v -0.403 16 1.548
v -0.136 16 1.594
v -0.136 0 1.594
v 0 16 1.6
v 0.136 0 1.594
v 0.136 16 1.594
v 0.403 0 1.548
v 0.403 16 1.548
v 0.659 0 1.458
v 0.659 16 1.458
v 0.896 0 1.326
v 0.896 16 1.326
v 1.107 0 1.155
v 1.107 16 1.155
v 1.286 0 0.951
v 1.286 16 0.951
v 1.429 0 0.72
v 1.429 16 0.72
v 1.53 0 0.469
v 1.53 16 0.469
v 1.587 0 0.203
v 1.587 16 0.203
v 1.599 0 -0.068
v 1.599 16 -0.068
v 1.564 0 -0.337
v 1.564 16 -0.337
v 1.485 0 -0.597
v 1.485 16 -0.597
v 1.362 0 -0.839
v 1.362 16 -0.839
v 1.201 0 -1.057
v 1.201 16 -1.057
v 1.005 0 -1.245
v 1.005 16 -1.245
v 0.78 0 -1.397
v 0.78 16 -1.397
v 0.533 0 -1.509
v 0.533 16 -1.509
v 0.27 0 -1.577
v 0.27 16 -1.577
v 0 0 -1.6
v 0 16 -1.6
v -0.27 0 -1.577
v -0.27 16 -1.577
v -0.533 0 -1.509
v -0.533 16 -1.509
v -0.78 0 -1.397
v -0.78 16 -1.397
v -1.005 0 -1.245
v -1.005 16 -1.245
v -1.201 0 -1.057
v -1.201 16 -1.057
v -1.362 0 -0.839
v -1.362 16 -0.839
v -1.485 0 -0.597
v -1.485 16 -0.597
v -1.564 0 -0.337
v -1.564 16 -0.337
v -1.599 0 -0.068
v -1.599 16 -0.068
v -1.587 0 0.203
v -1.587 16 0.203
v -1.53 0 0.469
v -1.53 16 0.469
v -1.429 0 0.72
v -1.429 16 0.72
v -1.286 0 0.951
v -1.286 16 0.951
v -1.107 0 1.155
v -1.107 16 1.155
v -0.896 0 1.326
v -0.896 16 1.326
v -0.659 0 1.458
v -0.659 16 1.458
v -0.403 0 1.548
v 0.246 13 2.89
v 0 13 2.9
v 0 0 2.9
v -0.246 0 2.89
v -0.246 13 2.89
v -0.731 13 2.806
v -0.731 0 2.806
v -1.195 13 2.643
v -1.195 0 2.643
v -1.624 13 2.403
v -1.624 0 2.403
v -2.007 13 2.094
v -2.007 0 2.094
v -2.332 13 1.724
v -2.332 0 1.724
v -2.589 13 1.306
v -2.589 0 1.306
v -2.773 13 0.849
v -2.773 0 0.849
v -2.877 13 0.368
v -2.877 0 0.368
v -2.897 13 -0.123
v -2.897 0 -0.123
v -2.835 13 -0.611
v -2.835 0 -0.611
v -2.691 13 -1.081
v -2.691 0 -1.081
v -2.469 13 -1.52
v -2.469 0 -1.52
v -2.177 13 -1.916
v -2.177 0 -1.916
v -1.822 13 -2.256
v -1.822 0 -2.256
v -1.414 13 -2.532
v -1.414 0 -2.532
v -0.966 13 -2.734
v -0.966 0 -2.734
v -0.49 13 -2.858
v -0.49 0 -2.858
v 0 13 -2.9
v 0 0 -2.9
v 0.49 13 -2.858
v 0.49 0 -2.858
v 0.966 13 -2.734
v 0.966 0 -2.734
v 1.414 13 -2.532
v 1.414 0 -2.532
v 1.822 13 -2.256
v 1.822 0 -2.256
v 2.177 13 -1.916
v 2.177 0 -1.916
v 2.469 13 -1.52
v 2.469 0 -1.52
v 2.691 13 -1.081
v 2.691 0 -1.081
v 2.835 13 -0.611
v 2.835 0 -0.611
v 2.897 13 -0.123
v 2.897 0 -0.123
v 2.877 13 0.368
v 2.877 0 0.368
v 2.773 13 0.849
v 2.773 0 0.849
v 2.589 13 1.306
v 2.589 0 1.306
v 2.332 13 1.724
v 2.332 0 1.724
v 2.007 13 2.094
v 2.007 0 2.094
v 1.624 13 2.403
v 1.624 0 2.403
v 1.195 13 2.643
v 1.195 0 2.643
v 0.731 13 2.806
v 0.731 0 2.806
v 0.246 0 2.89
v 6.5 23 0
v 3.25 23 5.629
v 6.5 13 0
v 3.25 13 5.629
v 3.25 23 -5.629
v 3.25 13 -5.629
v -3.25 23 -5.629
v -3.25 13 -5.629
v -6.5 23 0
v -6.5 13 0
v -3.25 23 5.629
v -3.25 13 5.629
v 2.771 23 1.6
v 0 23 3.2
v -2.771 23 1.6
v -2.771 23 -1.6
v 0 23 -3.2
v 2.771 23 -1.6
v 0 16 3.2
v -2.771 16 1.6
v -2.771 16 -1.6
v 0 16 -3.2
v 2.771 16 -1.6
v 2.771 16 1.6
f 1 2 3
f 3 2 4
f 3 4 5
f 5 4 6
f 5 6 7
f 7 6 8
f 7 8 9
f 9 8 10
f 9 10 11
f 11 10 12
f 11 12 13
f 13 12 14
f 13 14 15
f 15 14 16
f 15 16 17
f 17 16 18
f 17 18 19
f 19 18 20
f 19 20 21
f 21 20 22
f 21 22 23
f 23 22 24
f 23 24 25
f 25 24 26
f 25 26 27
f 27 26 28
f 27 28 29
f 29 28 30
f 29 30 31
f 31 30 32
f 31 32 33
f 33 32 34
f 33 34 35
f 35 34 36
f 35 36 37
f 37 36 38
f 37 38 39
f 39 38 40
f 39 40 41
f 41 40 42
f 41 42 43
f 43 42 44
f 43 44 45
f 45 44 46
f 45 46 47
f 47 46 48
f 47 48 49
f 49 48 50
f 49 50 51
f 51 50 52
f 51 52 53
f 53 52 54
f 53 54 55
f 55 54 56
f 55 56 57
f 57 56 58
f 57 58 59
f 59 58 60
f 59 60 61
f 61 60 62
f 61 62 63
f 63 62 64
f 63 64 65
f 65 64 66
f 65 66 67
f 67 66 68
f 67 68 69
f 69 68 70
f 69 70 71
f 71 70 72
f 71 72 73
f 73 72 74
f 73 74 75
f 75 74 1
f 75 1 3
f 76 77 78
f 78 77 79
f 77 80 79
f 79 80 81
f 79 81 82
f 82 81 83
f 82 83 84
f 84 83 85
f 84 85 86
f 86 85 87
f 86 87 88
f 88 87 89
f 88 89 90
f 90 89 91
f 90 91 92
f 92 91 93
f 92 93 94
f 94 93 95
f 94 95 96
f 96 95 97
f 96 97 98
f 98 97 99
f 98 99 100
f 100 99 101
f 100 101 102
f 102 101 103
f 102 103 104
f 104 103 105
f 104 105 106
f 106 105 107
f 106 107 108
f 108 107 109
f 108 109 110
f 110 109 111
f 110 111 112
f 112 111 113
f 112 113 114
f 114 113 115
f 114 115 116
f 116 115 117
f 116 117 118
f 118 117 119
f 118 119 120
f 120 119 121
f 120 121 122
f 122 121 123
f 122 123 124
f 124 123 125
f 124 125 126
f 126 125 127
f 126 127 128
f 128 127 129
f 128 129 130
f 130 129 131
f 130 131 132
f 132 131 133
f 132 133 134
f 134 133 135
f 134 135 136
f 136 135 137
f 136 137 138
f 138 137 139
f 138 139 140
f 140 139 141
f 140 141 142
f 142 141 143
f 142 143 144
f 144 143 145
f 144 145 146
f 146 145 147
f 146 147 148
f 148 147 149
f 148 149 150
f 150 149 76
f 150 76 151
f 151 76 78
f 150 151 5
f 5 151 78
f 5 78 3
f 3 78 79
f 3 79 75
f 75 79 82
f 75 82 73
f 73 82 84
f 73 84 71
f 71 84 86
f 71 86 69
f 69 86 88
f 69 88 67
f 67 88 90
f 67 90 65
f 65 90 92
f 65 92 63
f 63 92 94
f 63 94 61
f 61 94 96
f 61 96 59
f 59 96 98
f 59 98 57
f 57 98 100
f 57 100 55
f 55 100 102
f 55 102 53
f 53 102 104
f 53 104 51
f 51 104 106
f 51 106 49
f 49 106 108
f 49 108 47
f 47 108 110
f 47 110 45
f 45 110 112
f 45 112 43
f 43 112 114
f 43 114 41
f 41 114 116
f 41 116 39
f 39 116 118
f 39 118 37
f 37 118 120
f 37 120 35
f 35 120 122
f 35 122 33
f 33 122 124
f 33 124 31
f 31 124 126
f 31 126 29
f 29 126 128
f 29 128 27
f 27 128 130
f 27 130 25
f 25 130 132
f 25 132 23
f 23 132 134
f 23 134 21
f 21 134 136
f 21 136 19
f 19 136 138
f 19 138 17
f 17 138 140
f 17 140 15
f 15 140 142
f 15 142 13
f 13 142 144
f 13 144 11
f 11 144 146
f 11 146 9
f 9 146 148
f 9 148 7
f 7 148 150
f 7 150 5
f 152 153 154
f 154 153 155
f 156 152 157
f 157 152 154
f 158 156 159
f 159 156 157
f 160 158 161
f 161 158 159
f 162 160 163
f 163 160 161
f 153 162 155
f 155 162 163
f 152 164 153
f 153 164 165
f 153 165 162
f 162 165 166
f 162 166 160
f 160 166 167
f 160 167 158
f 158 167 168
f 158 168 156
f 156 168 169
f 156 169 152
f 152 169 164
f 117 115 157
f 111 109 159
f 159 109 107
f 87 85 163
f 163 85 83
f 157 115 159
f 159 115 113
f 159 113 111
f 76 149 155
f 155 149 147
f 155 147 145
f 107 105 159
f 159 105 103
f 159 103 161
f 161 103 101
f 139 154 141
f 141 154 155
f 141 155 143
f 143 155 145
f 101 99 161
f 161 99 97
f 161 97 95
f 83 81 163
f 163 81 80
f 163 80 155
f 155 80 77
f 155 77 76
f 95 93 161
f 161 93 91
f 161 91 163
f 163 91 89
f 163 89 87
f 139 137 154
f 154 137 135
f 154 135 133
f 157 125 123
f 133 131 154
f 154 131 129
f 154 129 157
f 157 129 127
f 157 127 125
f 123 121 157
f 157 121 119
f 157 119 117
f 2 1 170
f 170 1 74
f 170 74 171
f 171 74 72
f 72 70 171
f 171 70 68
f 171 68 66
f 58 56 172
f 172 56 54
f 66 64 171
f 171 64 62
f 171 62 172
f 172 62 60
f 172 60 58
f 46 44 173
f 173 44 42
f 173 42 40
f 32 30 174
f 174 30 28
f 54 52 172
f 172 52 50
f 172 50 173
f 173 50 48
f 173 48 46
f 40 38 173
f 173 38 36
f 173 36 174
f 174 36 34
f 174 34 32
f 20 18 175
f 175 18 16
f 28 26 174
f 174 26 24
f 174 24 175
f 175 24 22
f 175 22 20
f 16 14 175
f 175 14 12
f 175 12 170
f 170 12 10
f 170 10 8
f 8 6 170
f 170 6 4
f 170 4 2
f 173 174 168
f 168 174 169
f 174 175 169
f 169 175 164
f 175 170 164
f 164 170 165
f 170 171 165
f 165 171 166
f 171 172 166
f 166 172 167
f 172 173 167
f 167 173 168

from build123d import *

# Parameters (mm, degrees)
SKETCH1_R           = 2.9
BOSS_EXTRUDE1_DEPTH = 13
BOSS_EXTRUDE2_DEPTH = 10
SKETCH3_R           = 1.6
CUT_EXTRUDE1_DEPTH  = 25
CUT_EXTRUDE2_DEPTH  = 7


with BuildPart() as part:
    # Sketch1 → Boss-Extrude1 (new body)
    with BuildSketch(Plane(origin=(0, 0, 0), x_dir=(1, 0, 0), z_dir=(0, 1, 0))):
        with Locations(Location((0, 0, 0), (0, 0, 270))):
            Circle(SKETCH1_R)
    extrude(amount=BOSS_EXTRUDE1_DEPTH)

    # Sketch2 → Boss-Extrude2 (add)
    with BuildSketch(Plane(origin=(0, 13, 0), x_dir=(1, 0, 0), z_dir=(0, 1, 0))):
        Polygon((6.5, 0), (3.25, 5.629165125), (-3.25, 5.629165125), (-6.5, 0), (-3.25, -5.629165125), (3.25, -5.629165125), align=None)
    extrude(amount=BOSS_EXTRUDE2_DEPTH)

    # Sketch3 → Cut-Extrude1 (cut)
    with BuildSketch(Plane.XZ):
        with Locations(Location((0, 0, 0), (0, 0, 270))):
            Circle(SKETCH3_R)
    extrude(amount=-CUT_EXTRUDE1_DEPTH, mode=Mode.SUBTRACT)

    # Sketch4 → Cut-Extrude2 (cut)
    with BuildSketch(Plane(origin=(0, 23, 0), x_dir=(1, 0, 0), z_dir=(0, 1, 0))):
        Polygon((0, 3.2), (-2.771281292, 1.6), (-2.771281292, -1.6), (0, -3.2), (2.771281292, -1.6), (2.771281292, 1.6), align=None)
    extrude(amount=-CUT_EXTRUDE2_DEPTH, mode=Mode.SUBTRACT)


solid = part.part
